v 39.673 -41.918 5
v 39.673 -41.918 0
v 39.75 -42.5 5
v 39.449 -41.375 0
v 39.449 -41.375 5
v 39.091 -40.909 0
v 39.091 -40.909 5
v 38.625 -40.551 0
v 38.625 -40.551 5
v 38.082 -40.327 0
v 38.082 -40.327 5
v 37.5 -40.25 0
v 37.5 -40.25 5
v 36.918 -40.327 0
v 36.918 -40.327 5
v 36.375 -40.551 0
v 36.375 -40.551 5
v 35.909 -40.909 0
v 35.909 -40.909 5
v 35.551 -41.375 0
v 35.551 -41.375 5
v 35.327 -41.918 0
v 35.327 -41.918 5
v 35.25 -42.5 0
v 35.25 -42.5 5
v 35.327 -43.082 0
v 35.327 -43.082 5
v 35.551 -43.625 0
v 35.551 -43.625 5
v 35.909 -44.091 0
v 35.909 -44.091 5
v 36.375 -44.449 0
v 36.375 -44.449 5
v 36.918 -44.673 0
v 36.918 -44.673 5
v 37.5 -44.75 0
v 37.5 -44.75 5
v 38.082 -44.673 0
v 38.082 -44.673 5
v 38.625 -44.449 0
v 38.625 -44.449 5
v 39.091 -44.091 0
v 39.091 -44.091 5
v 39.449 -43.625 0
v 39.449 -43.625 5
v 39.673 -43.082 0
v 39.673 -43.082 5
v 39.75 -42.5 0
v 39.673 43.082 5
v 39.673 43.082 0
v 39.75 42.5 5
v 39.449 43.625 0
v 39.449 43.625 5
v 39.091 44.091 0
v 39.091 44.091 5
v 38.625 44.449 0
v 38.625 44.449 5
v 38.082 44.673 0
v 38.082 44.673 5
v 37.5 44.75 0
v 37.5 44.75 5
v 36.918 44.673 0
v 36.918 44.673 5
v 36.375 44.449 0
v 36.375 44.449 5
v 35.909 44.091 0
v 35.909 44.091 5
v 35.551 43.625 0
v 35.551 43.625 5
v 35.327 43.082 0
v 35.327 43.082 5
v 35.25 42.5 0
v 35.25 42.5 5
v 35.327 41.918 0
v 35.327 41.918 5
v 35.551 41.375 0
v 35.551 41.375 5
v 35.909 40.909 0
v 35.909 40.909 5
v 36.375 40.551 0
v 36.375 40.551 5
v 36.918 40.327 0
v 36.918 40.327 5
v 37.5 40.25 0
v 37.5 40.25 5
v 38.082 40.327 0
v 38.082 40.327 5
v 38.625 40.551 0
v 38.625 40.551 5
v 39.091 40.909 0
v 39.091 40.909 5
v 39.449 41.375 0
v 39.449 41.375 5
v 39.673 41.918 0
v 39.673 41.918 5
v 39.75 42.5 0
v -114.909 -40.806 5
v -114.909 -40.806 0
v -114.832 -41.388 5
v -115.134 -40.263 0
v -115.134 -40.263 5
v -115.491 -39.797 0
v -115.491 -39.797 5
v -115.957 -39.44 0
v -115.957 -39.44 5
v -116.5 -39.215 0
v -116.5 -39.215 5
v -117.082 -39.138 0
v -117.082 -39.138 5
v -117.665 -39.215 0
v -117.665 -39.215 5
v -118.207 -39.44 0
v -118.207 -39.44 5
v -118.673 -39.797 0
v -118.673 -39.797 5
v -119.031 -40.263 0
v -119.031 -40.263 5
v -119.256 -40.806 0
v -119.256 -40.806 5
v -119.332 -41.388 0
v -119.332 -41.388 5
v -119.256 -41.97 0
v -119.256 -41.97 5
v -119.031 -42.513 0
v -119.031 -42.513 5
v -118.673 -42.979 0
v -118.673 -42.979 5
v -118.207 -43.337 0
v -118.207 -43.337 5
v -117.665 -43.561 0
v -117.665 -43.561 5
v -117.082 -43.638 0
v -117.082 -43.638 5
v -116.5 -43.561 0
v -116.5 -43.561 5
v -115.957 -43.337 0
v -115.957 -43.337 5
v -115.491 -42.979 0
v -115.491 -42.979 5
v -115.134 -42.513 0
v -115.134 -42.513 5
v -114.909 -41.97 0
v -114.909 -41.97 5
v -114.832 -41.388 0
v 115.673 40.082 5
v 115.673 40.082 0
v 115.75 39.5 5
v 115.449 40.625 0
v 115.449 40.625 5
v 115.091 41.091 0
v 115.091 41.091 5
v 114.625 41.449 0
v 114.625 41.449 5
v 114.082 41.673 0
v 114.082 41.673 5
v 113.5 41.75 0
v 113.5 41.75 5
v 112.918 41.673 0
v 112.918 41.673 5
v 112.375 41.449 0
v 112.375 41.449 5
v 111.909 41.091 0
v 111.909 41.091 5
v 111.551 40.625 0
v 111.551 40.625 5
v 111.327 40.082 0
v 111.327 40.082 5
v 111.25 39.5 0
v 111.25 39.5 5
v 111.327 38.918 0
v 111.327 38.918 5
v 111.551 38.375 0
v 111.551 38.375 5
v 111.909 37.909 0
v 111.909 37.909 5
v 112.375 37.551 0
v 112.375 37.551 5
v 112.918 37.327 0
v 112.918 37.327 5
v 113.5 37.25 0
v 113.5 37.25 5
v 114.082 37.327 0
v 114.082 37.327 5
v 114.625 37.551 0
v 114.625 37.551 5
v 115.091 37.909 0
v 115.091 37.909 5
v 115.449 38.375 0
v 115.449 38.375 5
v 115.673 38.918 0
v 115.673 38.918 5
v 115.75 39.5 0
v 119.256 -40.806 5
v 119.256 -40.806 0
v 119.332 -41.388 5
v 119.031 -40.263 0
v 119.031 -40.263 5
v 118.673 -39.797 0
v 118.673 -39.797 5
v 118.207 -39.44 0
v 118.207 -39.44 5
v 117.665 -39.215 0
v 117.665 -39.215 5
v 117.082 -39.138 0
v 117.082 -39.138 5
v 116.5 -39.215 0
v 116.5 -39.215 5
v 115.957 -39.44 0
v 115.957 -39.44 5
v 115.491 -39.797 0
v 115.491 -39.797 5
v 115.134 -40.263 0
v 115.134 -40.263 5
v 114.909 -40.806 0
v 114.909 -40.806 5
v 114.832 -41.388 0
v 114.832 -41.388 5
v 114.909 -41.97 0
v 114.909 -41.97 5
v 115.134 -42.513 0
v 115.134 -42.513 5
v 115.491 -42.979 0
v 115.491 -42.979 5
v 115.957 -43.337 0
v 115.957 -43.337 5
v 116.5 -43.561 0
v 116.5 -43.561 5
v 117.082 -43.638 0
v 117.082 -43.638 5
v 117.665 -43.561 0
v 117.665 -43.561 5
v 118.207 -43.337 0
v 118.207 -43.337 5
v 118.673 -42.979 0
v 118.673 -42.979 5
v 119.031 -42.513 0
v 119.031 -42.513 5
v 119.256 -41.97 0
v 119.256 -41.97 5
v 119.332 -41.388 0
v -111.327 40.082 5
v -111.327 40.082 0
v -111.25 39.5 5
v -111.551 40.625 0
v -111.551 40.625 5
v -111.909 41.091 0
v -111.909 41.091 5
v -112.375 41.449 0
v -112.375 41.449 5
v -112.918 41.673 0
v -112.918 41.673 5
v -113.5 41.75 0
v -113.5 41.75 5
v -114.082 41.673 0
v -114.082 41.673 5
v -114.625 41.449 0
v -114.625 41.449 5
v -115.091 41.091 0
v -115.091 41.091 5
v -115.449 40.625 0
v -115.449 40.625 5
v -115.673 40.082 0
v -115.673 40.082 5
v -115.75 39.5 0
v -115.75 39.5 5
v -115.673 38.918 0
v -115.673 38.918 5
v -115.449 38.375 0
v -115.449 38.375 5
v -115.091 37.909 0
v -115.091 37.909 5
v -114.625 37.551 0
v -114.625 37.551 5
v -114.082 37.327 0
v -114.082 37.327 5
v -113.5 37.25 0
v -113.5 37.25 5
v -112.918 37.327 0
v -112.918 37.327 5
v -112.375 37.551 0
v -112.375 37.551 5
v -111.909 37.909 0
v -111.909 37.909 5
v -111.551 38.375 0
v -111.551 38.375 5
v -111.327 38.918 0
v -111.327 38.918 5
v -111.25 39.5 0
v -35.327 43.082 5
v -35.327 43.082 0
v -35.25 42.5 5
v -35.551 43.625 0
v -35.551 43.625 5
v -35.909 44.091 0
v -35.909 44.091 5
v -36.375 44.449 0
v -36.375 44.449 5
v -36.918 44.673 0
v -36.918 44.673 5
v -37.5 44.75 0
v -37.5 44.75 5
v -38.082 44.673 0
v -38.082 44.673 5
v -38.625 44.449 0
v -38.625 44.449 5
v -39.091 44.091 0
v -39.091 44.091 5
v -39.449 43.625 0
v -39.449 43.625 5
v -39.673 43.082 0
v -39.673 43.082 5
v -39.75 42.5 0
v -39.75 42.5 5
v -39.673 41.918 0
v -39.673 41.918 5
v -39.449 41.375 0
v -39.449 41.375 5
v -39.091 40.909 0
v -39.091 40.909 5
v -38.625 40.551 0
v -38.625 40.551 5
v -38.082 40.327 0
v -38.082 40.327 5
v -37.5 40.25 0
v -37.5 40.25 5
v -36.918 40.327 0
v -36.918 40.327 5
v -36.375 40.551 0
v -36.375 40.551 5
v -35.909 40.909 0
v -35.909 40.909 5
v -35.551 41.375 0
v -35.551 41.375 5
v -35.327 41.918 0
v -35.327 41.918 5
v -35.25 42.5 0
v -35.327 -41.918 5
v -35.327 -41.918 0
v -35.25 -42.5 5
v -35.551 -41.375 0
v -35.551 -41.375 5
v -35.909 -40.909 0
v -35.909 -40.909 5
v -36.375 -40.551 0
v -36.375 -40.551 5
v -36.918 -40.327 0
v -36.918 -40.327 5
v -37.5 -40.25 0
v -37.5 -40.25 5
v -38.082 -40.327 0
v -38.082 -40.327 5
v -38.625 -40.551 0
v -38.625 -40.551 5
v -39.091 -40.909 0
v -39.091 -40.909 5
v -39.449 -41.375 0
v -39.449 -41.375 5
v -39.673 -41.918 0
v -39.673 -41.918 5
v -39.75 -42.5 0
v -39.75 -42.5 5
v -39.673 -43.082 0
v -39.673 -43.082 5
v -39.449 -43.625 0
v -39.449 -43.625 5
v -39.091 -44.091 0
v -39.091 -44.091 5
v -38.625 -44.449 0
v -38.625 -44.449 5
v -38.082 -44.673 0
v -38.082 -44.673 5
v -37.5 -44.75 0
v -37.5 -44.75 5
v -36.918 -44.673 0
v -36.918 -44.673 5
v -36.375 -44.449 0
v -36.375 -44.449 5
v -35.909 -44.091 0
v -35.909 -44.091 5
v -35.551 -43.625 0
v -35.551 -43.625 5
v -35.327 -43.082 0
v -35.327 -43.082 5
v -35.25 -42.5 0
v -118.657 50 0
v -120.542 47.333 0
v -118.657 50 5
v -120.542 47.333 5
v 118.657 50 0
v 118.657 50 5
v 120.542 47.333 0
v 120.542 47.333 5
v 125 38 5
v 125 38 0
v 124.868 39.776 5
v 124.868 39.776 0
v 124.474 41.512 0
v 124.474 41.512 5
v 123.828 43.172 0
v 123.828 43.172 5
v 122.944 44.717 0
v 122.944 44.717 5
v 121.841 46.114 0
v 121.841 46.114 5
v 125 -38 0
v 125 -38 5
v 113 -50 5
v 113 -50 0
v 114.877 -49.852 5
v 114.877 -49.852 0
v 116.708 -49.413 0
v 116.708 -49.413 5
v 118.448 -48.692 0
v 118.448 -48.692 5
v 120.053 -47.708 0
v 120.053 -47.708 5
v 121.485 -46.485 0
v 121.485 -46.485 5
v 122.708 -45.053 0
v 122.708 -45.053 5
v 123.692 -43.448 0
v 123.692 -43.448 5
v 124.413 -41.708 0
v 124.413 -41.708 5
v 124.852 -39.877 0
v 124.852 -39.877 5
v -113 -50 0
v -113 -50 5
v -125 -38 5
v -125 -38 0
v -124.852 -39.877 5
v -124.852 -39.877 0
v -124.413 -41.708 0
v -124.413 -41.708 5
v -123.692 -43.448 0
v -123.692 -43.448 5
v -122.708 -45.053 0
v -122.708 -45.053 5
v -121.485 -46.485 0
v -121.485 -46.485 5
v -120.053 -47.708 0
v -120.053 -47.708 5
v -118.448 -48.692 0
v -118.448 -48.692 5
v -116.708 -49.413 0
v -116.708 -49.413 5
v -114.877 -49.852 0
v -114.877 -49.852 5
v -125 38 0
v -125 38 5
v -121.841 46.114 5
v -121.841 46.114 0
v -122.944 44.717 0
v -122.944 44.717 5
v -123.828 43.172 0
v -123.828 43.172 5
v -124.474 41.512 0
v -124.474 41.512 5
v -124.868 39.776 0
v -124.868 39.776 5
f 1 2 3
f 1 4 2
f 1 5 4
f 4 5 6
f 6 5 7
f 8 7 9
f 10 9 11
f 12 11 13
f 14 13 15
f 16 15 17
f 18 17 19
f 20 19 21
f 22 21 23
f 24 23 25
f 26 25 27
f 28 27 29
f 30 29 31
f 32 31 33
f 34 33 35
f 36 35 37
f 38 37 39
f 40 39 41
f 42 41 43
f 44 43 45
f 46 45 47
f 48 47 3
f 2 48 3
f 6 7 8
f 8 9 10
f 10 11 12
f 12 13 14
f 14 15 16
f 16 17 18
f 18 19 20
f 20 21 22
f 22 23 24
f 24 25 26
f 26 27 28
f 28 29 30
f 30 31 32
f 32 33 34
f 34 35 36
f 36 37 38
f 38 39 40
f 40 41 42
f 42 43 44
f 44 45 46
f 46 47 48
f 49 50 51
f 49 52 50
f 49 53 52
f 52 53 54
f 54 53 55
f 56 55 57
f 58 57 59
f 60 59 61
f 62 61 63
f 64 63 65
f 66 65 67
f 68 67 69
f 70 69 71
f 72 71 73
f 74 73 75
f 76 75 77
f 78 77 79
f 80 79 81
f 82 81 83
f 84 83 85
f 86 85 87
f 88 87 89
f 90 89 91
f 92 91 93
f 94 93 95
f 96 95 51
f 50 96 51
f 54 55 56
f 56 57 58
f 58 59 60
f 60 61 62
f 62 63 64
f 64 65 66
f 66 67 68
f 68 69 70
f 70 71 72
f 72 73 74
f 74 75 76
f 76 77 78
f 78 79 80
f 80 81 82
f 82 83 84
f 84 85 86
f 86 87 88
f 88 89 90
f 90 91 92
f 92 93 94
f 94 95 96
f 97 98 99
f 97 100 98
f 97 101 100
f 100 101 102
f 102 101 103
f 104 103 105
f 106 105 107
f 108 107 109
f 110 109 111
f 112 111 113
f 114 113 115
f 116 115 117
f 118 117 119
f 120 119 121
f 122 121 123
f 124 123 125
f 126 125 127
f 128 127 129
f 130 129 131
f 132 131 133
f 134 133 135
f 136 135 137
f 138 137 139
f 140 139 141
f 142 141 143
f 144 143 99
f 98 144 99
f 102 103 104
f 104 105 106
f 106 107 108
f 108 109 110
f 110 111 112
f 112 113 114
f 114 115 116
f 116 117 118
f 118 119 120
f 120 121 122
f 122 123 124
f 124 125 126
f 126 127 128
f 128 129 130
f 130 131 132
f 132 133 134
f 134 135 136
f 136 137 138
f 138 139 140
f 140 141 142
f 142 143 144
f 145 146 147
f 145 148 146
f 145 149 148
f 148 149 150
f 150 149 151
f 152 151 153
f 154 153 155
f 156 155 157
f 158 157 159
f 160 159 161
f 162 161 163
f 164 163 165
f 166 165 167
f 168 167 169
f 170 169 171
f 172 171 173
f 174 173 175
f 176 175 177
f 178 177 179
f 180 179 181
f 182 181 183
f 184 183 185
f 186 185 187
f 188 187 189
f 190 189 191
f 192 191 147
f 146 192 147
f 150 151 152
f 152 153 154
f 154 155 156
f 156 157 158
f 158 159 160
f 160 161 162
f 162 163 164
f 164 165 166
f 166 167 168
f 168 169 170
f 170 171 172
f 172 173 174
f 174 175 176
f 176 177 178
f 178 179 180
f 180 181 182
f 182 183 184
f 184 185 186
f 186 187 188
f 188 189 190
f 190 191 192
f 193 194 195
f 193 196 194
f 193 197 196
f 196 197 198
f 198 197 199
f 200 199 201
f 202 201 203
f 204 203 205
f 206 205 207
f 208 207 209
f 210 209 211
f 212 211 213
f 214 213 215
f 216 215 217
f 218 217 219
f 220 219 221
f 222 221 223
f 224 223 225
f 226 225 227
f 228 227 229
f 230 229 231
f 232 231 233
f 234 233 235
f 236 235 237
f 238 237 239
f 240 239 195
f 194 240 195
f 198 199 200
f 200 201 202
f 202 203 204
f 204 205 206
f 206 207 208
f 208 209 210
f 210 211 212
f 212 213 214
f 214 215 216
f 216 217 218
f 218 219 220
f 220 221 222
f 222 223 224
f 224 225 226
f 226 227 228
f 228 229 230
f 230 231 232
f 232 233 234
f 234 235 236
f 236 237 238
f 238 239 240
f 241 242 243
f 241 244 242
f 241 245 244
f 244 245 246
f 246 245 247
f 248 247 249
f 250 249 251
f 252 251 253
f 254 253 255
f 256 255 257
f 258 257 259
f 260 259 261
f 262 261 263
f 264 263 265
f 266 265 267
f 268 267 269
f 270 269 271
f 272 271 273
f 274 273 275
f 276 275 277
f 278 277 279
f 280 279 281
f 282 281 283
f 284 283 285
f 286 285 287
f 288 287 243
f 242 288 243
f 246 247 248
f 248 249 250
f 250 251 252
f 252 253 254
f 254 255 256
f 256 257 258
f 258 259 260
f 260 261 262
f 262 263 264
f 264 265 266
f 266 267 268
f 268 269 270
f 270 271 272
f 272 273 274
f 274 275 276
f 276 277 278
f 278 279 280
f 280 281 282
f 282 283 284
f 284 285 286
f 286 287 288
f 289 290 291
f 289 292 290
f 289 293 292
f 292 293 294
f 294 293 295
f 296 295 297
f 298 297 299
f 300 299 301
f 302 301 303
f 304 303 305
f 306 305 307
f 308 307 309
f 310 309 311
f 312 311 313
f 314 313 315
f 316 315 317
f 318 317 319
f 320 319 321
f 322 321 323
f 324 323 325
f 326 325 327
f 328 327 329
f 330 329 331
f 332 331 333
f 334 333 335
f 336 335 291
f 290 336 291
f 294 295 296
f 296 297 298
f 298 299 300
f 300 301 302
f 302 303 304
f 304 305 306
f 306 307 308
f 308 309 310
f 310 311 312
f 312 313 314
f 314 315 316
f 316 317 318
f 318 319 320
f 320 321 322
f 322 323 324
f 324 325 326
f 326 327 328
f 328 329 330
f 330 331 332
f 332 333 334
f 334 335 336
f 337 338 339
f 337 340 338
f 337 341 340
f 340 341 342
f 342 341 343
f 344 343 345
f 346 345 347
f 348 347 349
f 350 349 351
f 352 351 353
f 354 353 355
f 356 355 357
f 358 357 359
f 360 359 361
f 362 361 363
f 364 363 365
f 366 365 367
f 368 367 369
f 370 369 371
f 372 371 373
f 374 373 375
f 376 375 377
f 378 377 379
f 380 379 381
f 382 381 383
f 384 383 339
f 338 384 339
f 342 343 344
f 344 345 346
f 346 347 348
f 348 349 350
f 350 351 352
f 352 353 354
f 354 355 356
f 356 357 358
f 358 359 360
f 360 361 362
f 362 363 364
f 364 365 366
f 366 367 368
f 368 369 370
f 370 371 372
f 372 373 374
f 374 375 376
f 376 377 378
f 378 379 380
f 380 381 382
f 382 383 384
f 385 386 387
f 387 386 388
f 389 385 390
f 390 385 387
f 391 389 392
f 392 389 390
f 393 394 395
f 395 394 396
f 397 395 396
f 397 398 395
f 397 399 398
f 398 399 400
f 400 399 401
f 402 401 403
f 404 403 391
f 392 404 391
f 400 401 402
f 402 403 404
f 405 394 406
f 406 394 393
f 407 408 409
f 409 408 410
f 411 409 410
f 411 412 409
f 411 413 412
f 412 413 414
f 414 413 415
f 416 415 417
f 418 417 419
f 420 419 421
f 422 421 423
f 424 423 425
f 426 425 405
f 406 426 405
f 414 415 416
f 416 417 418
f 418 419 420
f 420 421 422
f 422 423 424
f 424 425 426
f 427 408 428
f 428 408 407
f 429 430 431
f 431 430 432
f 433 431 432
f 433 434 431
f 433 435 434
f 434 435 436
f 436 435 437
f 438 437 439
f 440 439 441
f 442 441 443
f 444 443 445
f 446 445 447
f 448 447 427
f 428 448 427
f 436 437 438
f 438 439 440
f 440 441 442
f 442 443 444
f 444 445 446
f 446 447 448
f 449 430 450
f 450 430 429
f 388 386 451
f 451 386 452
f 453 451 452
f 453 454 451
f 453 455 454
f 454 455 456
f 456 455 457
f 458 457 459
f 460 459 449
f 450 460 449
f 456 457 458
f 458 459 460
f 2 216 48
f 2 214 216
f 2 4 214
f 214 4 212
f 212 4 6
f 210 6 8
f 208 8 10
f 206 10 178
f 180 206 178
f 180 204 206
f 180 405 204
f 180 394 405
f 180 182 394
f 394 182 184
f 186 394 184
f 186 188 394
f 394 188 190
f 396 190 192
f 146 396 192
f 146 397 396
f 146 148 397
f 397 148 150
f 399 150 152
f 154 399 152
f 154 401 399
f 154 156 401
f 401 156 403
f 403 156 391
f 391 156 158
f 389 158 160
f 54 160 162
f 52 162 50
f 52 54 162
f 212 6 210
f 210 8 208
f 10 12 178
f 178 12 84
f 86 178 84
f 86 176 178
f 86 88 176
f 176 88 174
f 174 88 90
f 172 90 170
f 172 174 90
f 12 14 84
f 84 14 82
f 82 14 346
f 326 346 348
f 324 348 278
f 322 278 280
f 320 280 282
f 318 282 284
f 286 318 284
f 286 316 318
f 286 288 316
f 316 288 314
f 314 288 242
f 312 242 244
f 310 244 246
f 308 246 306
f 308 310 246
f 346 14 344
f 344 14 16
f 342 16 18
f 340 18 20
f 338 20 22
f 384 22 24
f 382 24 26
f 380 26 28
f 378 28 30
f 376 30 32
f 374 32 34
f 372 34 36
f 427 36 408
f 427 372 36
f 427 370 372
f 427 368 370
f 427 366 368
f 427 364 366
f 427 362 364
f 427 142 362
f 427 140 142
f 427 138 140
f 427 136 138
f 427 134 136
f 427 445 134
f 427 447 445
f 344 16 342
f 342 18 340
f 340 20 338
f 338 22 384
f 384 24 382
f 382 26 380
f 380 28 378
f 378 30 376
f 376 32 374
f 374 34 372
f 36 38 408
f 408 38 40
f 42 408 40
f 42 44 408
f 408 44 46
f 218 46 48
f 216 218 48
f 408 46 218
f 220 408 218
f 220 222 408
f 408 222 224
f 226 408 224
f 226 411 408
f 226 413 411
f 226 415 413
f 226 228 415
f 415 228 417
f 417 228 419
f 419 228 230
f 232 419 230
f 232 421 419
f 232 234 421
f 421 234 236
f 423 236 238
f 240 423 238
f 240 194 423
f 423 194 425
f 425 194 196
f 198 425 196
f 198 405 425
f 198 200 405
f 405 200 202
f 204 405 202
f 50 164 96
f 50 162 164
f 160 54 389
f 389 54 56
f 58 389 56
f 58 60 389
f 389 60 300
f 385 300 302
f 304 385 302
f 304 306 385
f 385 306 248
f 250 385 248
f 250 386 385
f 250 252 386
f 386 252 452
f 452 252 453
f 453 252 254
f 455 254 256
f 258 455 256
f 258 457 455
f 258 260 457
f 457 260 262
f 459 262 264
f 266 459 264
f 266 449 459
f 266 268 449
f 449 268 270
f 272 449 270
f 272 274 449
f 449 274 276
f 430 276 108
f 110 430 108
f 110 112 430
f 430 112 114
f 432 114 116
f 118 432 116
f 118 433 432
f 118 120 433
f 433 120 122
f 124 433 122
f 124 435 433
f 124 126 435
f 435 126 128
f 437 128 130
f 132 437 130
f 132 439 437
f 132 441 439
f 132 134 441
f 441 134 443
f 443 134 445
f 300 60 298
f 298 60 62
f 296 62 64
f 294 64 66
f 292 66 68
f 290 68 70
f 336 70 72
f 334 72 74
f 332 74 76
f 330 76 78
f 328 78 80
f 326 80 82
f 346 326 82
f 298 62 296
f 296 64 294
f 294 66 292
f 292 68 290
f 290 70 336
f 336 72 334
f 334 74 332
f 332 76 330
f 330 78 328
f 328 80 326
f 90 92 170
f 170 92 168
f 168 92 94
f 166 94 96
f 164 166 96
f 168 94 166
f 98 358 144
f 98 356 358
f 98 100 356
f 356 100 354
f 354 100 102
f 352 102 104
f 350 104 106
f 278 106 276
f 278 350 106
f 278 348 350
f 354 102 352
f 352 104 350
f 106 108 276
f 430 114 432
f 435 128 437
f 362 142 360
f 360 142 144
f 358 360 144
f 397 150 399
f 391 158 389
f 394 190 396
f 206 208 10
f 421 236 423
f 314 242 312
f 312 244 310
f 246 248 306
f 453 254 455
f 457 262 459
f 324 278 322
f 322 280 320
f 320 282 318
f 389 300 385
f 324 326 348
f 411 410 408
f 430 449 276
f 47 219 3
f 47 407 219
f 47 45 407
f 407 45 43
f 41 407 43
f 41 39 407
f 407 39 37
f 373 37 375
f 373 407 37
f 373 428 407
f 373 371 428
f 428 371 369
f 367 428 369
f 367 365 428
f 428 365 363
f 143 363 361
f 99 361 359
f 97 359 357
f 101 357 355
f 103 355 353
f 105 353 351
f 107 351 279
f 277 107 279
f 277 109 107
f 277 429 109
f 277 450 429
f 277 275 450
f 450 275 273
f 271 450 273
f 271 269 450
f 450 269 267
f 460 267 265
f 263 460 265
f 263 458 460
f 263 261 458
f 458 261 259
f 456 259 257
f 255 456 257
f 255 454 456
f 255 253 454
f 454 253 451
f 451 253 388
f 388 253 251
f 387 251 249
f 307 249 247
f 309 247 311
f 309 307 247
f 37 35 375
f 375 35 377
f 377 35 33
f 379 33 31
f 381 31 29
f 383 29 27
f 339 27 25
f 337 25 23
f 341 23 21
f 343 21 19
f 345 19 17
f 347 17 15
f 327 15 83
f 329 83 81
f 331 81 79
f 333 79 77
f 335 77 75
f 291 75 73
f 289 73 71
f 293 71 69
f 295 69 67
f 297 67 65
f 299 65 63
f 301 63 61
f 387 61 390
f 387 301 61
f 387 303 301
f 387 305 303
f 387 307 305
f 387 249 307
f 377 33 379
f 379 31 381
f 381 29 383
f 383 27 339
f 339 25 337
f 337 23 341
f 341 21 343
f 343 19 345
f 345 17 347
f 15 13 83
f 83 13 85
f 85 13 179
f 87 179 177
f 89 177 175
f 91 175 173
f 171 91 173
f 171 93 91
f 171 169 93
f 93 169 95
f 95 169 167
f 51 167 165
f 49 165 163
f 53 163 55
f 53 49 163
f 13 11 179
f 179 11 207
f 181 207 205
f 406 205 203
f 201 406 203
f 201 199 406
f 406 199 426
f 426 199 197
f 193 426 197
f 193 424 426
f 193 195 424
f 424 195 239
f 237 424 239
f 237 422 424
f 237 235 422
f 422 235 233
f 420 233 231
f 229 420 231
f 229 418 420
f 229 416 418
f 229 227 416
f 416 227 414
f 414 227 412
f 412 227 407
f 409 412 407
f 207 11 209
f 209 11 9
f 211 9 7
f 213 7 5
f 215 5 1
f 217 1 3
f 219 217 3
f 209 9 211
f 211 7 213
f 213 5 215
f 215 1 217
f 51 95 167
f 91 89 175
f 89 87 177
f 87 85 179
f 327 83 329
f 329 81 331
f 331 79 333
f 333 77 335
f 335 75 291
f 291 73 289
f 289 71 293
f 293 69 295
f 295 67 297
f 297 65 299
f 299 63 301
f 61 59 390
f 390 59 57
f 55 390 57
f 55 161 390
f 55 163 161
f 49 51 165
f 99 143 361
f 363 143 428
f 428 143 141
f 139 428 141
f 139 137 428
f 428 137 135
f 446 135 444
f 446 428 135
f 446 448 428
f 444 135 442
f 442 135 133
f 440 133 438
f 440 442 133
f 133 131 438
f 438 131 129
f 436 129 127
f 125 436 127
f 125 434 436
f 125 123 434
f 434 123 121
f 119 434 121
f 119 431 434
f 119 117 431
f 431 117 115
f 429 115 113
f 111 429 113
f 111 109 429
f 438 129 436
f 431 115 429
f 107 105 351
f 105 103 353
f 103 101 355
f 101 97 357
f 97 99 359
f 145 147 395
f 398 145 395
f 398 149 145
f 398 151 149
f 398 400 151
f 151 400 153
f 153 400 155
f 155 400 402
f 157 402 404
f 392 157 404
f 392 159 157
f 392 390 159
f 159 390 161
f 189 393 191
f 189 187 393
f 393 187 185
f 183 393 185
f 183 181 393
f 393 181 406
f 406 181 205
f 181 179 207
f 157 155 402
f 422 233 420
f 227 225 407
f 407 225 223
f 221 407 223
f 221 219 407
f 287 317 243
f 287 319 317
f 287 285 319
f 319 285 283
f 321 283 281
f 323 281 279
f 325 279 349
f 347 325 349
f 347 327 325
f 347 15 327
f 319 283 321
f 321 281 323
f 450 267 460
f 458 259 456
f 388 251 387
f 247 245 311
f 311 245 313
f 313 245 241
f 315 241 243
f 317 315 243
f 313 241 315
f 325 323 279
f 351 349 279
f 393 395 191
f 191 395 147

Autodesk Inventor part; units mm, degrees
ref_plane "YZ Plane" through (0, 0, 0) normal (1, 0, 0) x (0, 1, 0)
ref_plane "XZ Plane" through (0, 0, 0) normal (0, 1, 0) x (-1, 0, 0)
ref_plane "XY Plane" through (0, 0, 0) normal (0, 0, 1) x (1, 0, 0)
sketch "Sketch1" plane through (0, 0, 0) normal (0, 0, 1) x (1, 0, 0)
  line L0 (30, 31.5) -> (34, 31.5)
  line L1 (34, 36) -> (34, 31.5)
  arc A0 (34, 36) -> (44, 46) centre (34, 46) ccw
  line L2 (44, 46) -> (106, 46)
  arc A1 (106, 46) -> (121, 31) centre (121, 46) ccw
  line L3 (121, 31) -> (121, -29.2696)
  arc A2 (104.9089, -46) -> (121, -29.2696) centre (15.3991, 56.1924) ccw
  line L4 (104.9089, -46) -> (44, -46)
  arc A3 (44, -46) -> (34, -36) centre (34, -46) ccw
  line L5 (34, -21.5) -> (34, -36)
  line L6 (34, -21.5) -> (30, -21.5)
  line L7 (30, -46) -> (30, -21.5)
  line L8 (30, -46) -> (-30, -46)
  line L9 (-30, -21.5) -> (-30, -46)
  line L10 (-30, -21.5) -> (-34, -21.5)
  line L11 (-34, -36) -> (-34, -21.5)
  arc A4 (-34, -36) -> (-44, -46) centre (-34, -46) ccw
  line L12 (-44, -46) -> (-104.9089, -46)
  arc A5 (-121, -29.2696) -> (-104.9089, -46) centre (-15.3991, 56.1924) ccw
  line L13 (-121, -29.2696) -> (-121, 31)
  arc A6 (-121, 31) -> (-106, 46) centre (-121, 46) ccw
  line L14 (-106, 46) -> (-44, 46)
  arc A7 (-44, 46) -> (-34, 36) centre (-34, 46) ccw
  line L15 (-34, 21.5) -> (-34, 36)
  line L16 (-34, 21.5) -> (-30, 21.5)
  line L17 (-30, 46) -> (-30, 21.5)
  line L18 (-30, 46) -> (30, 46)
  line L19 (30, 31.5) -> (30, 46)
  circle A8 centre (-113.5, 39.5) radius 2.25
  circle A9 centre (-117.0823, -41.3881) radius 2.25
  circle A10 centre (-37.5, 42.5) radius 2.25
  circle A11 centre (-37.5, -42.5) radius 2.25
  arc A12 (-125, -38) -> (-113, -50) centre (-113, -38) ccw
  line L20 (-113, -50) -> (113, -50)
  arc A13 (113, -50) -> (125, -38) centre (113, -38) ccw
  line L21 (125, -38) -> (125, 38)
  arc A14 (125, 38) -> (120.5425, 47.3333) centre (113, 38) ccw
  line L22 (120.5425, 47.3333) -> (118.6569, 50)
  line L23 (-118.6569, 50) -> (118.6569, 50)
  line L24 (-120.5425, 47.3333) -> (-118.6569, 50)
  arc A15 (-120.5425, 47.3333) -> (-125, 38) centre (-113, 38) ccw
  line L25 (-125, 38) -> (-125, -38)
  circle A16 centre (117.0823, -41.3881) radius 2.25
  circle A17 centre (37.5, 42.5) radius 2.25
  circle A18 centre (113.5, 39.5) radius 2.25
  circle A19 centre (37.5, -42.5) radius 2.25
  point P0 (0, 0)
  point P1 (0, 0)
extrude "Extrusion1" add sketch "Sketch1" along normal blind 5 contours L0 L1 A0 L2 A1 L3 A2 L4 A3 L5 L6 L7 L8 L9 L10 L11 A4 L12 A5 L13 A6 L14 A7 L15 L16 L17 L18 L19 | L25 A15 L24 L23 L22 A14 L21 A13 L20 A12
properties part number "Housing cover"
